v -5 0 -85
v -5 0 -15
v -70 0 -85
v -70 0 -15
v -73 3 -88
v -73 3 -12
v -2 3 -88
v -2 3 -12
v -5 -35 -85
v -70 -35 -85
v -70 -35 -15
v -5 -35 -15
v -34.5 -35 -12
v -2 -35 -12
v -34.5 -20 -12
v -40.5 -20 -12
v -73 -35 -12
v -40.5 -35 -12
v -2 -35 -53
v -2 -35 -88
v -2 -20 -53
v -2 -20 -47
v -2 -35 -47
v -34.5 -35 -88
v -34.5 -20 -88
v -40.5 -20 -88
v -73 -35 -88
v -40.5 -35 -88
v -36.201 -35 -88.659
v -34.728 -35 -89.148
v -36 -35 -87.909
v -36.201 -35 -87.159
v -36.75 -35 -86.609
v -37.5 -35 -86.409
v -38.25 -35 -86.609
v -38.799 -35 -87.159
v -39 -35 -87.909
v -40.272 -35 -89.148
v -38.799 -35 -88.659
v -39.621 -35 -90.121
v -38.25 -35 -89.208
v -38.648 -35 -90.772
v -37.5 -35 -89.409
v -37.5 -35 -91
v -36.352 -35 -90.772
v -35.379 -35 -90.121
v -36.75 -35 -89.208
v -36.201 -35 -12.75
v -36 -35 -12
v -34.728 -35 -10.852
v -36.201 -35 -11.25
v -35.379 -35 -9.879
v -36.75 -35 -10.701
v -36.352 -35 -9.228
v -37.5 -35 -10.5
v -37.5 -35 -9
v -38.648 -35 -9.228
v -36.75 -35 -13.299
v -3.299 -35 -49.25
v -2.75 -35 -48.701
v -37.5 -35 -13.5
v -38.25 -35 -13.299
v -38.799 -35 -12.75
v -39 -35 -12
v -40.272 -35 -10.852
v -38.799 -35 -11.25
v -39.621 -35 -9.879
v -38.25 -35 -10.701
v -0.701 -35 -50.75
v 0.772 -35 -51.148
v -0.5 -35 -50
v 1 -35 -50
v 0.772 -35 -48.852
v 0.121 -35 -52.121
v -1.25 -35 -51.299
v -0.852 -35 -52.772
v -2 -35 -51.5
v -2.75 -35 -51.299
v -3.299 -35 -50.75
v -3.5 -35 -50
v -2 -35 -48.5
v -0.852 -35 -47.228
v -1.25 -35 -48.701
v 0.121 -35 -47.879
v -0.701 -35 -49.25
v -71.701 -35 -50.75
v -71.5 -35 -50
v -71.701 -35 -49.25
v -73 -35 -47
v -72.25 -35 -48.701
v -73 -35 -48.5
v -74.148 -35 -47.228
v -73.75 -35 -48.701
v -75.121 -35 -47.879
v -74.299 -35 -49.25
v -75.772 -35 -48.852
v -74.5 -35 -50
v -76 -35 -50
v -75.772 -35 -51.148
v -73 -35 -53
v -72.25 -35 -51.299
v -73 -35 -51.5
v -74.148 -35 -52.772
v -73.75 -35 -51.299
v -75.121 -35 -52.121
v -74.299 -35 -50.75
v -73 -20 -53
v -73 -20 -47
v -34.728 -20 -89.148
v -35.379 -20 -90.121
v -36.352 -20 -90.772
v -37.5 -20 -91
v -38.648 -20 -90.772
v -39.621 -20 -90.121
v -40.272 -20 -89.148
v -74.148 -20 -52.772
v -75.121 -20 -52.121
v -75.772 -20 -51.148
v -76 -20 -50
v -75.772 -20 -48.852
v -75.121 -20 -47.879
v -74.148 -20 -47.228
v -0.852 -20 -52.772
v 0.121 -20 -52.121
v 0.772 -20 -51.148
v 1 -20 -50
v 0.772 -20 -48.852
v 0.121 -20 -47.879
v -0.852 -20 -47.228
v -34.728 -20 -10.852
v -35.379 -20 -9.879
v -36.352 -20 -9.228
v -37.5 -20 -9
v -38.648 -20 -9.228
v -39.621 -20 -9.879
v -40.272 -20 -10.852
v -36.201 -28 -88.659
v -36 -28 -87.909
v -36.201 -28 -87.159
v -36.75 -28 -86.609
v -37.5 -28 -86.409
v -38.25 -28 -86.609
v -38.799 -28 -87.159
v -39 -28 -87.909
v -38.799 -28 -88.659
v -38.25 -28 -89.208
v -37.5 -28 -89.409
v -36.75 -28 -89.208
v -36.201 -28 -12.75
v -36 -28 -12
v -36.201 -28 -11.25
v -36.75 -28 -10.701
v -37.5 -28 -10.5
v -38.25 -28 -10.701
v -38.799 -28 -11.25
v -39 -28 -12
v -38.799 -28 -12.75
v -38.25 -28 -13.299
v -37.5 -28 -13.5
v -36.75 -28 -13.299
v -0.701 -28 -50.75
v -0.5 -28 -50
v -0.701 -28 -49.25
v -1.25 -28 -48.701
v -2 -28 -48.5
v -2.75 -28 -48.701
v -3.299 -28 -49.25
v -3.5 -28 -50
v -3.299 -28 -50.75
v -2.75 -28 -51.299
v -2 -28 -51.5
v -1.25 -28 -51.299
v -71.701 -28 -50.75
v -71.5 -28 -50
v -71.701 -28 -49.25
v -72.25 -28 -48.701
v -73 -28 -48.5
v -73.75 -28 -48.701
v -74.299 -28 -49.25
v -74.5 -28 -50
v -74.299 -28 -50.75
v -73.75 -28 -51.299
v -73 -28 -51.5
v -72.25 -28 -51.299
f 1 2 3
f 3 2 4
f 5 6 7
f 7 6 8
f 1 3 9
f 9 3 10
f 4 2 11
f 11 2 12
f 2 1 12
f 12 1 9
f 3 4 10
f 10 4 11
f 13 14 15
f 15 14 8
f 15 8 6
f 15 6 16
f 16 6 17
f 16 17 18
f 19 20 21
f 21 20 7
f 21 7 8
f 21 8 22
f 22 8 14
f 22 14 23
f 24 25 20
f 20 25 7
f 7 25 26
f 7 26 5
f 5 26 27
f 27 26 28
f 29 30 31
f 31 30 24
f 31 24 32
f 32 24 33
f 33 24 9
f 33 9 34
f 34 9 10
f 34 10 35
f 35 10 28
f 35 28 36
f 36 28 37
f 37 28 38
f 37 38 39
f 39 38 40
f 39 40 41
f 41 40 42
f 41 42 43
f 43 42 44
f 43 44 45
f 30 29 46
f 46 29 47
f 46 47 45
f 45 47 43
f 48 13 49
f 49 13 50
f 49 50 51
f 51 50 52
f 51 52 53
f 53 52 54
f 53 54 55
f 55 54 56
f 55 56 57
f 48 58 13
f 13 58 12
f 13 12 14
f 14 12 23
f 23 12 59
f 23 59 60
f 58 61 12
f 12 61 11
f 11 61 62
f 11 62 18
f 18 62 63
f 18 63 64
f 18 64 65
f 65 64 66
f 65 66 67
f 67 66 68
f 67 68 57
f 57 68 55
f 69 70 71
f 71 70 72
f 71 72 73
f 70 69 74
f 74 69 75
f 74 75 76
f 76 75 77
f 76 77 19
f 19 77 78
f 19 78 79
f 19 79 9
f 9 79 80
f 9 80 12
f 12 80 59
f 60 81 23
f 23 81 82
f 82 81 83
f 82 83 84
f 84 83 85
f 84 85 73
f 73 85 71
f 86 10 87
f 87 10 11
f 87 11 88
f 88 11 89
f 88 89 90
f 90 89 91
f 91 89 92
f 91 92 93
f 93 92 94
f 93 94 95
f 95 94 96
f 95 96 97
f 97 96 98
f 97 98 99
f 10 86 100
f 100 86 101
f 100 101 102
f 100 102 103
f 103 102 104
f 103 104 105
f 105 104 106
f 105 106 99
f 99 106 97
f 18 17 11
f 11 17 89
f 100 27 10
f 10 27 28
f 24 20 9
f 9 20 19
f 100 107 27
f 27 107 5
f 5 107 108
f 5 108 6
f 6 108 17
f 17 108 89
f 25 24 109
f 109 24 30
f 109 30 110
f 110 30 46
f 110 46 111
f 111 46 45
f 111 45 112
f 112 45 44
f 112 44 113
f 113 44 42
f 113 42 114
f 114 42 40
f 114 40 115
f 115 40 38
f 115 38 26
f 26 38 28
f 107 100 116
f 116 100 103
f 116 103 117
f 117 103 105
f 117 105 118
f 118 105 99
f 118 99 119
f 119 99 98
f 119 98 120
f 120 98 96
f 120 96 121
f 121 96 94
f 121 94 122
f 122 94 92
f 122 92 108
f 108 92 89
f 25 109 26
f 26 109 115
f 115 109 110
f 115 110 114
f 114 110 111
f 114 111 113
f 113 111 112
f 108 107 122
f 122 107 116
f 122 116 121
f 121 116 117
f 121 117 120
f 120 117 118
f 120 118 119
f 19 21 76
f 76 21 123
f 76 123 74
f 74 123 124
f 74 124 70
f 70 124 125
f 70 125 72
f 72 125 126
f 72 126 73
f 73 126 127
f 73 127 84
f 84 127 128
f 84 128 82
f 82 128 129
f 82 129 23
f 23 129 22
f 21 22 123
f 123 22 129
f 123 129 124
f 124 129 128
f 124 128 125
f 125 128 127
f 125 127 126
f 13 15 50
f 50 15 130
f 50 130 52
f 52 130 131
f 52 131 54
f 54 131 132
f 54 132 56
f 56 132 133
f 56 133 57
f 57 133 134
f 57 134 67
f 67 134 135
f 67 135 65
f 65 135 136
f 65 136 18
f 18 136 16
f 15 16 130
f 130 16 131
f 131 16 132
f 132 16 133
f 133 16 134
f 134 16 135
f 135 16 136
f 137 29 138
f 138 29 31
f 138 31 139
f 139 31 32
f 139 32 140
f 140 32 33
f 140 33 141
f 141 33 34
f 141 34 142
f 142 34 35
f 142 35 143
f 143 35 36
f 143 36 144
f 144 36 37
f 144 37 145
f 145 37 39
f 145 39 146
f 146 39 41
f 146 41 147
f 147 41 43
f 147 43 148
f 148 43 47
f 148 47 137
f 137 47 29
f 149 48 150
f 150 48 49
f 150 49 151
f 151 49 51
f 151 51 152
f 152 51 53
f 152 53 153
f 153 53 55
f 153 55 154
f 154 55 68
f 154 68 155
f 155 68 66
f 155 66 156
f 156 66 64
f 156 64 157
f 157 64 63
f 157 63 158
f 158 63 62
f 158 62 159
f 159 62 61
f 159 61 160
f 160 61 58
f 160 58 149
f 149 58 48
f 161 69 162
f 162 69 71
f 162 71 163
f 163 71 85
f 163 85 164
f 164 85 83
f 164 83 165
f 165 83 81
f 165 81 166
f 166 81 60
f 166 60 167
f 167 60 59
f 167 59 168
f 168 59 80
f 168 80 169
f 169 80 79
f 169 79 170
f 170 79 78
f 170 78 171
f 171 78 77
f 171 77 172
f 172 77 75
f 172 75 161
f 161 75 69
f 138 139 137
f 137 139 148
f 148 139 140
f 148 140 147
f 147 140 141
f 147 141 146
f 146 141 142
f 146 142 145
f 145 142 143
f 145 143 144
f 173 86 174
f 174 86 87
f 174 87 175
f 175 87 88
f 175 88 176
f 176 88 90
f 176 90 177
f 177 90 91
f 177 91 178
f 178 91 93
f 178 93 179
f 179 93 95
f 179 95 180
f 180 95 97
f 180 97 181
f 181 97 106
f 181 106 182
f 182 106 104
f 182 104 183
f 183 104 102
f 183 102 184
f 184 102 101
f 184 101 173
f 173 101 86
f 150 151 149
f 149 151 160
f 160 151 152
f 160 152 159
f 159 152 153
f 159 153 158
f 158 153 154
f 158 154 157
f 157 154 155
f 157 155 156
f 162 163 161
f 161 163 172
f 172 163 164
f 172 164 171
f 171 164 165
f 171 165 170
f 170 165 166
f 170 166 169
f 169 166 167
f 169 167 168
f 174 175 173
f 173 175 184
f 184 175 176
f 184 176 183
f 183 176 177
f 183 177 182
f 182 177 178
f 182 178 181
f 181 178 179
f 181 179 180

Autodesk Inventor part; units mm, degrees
ref_plane "YZ Plane" through (0, 0, 0) normal (1, 0, 0) x (0, 1, 0)
ref_plane "XZ Plane" through (0, 0, 0) normal (0, 1, 0) x (-1, 0, 0)
ref_plane "XY Plane" through (0, 0, 0) normal (0, 0, 1) x (1, 0, 0)
sketch "Sketch1" plane through (0, 0, 0) normal (0, 1, 0) x (-1, 0, 0)
  line L0 (70, -85) -> (5, -85)
  line L1 (5, -85) -> (5, -15)
  line L2 (5, -15) -> (70, -15)
  line L3 (70, -15) -> (70, -85)
  line L4 (73, -15) -> (73, -85)
  line L5 (73, -85) -> (73, -88)
  line L6 (73, -88) -> (5, -88)
  line L7 (5, -88) -> (2, -88)
  line L8 (2, -88) -> (2, -15)
  line L9 (2, -15) -> (2, -12)
  line L10 (2, -12) -> (73, -12)
  line L11 (73, -12) -> (73, -15)
  line L12 (70, -85) -> (5, -85)
  line L13 (5, -85) -> (5, -15)
  line L14 (5, -15) -> (70, -15)
  line L15 (70, -15) -> (70, -85)
  line L16 (73, -88) -> (2, -88)
  line L17 (2, -88) -> (2, -12)
  line L18 (2, -12) -> (73, -12)
  line L19 (73, -12) -> (73, -88)
  point P0 (0, 0)
  dimension "d25" = 70
extrude "Extrusion1" add sketch "Sketch1" against normal blind 35
sketch "Sketch2" plane through (0, 0, 0) normal (0, 1, 0) x (1, 0, 0)
  line L0 (-2, 12) -> (-2, 88) projected
  line L1 (-2, 12) -> (-73, 12)
  line L2 (-73, 12) -> (-73, 88)
  line L3 (-73, 88) -> (-2, 88)
  line L4 (-2, 88) -> (-2, 12)
  point P0 (0, 0)
extrude "Extrusion2" add sketch "Sketch2" along normal blind 3
sketch "Sketch3" plane through (0, -35, 0) normal (0, -1, 0) x (1, 0, 0)
  line L0 (-73, -12) -> (-2, -12) projected
  circle A0 centre (-37.5, -12) radius 3
  line L1 (-73, -88) -> (-2, -88) projected
  circle A1 centre (-37.5, -88) radius 3
  line L2 (-73, -12) -> (-73, -88) projected
  circle A2 centre (-73, -50) radius 3
  line L3 (-2, -88) -> (-2, -12) projected
  circle A3 centre (-2, -50) radius 3
  point P0 (0, 0)
  point P1 (-34.5, -88)
  point P2 (-40.5, -88)
  point P3 (-73, -53)
  point P4 (-73, -47)
  dimension "d34" = 6
  dimension "d35" = 6
  dimension "d36" = 6
  dimension "d37" = 6
extrude "Extrusion3" add sketch "Sketch3" against normal blind 15 contours A0 L0 | L0 A0 | A3 L3 | L3 A3 | L2 A2 | A1 L1 picked at (-73.9927, -50.1205) picked at (-37.3795, -88.9927)
sketch "Sketch4" plane through (0, -35, 0) normal (0, -1, 0) x (1, 0, 0)
  line L0 (-73, -88) -> (-73, -12) projected
  circle A0 centre (-73, -50) radius 1.5
  arc A1 (-34.5, -12) -> (-40.5, -12) centre (-37.5, -12) ccw projected
  circle A2 centre (-37.5, -12) radius 1.5
  circle A3 centre (-37.5, -87.9085) radius 1.5
  line L1 (-2, -12) -> (-2, -88) projected
  circle A4 centre (-2, -50) radius 1.5
  point P0 (0, 0)
  dimension "d40" = 3
  dimension "d41" = 3
  dimension "d42" = 3
  dimension "d43" = 3
extrude "Extrusion4" cut sketch "Sketch4" against normal blind 7
properties part number "cajapic"
